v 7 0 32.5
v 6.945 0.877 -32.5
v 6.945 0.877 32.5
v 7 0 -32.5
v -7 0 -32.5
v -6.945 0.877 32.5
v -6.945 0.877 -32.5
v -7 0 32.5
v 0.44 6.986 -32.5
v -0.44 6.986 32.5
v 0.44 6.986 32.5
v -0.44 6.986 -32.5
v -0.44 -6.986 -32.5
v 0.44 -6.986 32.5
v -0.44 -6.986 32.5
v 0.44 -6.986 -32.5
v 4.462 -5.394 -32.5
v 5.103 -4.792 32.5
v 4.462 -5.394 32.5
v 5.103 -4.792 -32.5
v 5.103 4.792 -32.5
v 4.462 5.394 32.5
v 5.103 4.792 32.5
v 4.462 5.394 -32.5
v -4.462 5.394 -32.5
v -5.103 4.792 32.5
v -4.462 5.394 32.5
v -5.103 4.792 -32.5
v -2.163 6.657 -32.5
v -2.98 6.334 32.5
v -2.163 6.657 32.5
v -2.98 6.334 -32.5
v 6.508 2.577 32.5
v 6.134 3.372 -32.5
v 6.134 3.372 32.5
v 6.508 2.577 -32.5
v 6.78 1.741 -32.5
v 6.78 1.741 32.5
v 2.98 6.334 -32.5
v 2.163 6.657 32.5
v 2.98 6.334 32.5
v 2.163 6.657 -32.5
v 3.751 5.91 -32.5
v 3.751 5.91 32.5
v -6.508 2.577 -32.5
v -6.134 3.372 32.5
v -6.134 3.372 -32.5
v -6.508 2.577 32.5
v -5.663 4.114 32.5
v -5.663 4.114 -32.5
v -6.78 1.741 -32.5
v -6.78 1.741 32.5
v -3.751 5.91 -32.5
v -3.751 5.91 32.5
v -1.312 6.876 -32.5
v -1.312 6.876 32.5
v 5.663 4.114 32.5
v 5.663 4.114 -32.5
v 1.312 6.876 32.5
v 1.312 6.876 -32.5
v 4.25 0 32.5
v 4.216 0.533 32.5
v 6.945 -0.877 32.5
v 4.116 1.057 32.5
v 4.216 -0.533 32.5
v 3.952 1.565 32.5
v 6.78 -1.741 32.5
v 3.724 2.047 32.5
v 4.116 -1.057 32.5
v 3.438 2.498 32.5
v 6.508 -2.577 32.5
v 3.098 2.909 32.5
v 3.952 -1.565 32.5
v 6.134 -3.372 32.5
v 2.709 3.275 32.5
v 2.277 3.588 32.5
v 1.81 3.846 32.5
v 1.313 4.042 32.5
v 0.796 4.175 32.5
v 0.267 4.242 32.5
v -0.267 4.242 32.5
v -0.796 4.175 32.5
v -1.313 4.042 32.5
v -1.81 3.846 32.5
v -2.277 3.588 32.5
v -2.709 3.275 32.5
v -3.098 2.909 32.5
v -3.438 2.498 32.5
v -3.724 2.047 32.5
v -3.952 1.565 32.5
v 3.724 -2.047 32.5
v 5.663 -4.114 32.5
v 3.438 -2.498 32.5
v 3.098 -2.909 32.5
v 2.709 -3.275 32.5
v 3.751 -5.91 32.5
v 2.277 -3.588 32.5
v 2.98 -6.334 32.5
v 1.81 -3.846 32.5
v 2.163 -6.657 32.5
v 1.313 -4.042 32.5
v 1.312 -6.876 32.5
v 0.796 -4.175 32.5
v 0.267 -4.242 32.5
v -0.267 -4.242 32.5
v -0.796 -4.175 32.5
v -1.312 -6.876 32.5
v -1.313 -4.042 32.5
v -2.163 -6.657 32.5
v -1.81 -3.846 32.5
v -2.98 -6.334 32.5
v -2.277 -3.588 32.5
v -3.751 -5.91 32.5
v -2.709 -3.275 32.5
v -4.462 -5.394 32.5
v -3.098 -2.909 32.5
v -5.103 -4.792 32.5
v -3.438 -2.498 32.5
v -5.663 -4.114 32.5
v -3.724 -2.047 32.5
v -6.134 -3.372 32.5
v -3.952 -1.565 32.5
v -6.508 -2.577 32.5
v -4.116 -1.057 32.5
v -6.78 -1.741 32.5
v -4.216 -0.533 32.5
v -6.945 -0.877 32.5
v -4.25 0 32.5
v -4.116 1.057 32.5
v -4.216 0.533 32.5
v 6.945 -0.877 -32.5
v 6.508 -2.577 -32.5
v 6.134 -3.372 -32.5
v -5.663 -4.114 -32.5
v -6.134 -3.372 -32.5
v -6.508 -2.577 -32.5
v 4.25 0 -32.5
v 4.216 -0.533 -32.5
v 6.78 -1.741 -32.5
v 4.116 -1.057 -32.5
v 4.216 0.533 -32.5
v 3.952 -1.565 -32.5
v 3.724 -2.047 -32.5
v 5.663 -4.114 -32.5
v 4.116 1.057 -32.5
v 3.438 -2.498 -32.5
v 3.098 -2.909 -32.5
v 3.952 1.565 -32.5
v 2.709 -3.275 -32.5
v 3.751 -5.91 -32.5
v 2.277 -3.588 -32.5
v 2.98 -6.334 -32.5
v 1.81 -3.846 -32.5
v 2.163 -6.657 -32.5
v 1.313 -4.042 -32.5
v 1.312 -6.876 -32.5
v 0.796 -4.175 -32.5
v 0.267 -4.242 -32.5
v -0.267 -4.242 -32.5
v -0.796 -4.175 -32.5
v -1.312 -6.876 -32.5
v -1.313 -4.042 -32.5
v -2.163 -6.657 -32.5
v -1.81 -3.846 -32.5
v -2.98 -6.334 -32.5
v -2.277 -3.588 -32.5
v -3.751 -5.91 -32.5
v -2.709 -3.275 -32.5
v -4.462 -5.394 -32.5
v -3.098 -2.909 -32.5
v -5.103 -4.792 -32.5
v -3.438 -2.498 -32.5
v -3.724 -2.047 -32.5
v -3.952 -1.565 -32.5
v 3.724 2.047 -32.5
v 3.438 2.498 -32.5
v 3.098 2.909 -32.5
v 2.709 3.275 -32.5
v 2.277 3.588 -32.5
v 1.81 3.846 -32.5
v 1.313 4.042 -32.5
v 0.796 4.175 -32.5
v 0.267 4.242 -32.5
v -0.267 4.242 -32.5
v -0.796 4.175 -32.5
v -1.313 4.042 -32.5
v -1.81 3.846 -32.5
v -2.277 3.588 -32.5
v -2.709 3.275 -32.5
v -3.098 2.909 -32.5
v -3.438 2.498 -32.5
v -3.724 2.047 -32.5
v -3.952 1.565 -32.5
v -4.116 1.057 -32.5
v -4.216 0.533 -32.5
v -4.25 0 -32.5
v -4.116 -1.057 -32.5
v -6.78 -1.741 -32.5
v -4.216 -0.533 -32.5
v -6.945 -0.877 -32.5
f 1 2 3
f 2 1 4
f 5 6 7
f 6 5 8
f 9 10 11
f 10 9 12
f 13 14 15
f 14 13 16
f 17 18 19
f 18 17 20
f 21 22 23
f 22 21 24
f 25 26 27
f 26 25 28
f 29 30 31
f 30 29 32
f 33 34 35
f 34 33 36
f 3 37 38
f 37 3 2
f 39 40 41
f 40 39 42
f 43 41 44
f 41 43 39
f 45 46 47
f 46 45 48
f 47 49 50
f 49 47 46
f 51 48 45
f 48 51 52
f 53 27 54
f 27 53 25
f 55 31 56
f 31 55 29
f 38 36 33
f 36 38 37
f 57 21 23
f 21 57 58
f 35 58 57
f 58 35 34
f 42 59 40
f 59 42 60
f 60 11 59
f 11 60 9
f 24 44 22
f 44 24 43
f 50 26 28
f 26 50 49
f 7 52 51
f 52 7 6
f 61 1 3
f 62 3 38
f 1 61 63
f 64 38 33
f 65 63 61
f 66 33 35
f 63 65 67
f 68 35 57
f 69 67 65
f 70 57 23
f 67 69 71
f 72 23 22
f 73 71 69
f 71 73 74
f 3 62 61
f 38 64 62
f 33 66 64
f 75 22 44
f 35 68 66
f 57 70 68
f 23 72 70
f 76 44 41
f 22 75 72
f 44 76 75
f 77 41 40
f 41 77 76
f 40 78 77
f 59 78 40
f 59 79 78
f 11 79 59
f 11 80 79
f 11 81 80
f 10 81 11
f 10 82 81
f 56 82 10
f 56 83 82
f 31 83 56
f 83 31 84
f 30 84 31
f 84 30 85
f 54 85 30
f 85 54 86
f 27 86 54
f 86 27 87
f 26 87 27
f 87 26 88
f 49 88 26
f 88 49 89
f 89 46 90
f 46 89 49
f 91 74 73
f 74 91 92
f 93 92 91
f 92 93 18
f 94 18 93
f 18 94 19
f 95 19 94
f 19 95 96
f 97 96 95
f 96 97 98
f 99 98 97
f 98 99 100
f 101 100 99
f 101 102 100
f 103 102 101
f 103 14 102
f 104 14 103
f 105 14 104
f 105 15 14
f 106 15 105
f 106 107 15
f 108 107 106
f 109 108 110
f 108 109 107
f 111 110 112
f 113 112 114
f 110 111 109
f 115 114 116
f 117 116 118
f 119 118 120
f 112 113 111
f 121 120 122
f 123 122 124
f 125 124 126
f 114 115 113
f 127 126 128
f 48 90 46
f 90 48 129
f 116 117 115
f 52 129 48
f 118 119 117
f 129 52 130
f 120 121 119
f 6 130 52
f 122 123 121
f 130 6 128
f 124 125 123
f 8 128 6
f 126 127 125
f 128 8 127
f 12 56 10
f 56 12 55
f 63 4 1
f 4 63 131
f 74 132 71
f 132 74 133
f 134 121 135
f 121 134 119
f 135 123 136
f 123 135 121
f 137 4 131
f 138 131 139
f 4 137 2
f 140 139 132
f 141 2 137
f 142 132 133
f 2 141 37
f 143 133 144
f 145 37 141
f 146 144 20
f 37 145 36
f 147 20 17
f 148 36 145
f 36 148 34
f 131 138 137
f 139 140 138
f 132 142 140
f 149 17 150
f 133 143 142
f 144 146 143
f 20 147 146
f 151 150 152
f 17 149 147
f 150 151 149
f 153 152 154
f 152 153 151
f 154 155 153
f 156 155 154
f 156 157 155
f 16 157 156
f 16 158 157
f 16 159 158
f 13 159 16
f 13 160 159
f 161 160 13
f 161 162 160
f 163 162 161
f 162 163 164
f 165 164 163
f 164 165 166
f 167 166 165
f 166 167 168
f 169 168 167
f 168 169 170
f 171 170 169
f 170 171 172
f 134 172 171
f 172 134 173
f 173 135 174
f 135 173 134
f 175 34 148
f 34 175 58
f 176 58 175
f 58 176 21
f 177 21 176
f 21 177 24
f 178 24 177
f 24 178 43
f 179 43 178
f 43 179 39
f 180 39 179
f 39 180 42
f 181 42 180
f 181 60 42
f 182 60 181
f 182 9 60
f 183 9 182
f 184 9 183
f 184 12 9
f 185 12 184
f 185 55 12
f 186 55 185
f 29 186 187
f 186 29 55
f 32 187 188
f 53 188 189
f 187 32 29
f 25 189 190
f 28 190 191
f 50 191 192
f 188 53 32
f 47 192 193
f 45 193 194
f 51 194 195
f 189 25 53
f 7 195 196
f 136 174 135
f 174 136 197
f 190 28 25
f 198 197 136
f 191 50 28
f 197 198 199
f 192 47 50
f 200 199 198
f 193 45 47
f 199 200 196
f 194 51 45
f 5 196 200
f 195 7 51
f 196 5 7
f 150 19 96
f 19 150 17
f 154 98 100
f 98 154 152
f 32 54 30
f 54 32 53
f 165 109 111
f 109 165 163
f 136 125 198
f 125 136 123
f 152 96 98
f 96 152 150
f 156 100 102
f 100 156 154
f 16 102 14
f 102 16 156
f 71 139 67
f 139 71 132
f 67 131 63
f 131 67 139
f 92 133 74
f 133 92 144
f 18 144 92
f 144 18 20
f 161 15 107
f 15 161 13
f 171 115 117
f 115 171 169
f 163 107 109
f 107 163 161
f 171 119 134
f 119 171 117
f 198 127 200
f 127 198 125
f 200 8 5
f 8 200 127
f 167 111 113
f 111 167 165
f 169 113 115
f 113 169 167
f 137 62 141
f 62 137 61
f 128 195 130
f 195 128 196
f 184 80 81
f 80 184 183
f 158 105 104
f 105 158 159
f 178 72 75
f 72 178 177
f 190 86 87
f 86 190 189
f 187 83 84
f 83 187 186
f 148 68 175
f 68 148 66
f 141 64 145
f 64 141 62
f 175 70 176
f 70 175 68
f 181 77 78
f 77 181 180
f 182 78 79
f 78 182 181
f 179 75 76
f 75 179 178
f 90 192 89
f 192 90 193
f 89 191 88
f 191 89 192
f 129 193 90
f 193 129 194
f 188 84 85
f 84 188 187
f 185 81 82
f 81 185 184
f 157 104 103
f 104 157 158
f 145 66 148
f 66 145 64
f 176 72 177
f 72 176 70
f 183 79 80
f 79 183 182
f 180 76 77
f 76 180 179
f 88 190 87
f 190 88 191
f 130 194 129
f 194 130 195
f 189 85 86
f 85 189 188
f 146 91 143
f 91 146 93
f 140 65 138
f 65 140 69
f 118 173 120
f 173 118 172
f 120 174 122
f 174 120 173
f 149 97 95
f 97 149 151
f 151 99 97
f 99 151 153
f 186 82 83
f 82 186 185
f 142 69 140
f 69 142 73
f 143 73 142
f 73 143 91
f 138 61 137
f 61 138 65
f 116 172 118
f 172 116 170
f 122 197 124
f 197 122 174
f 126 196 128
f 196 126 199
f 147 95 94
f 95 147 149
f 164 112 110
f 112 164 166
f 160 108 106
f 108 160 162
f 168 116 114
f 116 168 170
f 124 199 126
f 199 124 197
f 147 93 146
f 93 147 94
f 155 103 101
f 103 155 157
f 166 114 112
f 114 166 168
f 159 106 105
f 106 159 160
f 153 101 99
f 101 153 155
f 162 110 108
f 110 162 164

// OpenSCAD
$fn = 50;


difference() {
	union() {
		translate(v = [0, 0, -32.5000000000]) {
			cylinder(h = 65, r = 7.0000000000);
		}
	}
	union() {
		translate(v = [0, 0, -100.0000000000]) {
			cylinder(h = 200, r = 4.2500000000);
		}
	}
}
